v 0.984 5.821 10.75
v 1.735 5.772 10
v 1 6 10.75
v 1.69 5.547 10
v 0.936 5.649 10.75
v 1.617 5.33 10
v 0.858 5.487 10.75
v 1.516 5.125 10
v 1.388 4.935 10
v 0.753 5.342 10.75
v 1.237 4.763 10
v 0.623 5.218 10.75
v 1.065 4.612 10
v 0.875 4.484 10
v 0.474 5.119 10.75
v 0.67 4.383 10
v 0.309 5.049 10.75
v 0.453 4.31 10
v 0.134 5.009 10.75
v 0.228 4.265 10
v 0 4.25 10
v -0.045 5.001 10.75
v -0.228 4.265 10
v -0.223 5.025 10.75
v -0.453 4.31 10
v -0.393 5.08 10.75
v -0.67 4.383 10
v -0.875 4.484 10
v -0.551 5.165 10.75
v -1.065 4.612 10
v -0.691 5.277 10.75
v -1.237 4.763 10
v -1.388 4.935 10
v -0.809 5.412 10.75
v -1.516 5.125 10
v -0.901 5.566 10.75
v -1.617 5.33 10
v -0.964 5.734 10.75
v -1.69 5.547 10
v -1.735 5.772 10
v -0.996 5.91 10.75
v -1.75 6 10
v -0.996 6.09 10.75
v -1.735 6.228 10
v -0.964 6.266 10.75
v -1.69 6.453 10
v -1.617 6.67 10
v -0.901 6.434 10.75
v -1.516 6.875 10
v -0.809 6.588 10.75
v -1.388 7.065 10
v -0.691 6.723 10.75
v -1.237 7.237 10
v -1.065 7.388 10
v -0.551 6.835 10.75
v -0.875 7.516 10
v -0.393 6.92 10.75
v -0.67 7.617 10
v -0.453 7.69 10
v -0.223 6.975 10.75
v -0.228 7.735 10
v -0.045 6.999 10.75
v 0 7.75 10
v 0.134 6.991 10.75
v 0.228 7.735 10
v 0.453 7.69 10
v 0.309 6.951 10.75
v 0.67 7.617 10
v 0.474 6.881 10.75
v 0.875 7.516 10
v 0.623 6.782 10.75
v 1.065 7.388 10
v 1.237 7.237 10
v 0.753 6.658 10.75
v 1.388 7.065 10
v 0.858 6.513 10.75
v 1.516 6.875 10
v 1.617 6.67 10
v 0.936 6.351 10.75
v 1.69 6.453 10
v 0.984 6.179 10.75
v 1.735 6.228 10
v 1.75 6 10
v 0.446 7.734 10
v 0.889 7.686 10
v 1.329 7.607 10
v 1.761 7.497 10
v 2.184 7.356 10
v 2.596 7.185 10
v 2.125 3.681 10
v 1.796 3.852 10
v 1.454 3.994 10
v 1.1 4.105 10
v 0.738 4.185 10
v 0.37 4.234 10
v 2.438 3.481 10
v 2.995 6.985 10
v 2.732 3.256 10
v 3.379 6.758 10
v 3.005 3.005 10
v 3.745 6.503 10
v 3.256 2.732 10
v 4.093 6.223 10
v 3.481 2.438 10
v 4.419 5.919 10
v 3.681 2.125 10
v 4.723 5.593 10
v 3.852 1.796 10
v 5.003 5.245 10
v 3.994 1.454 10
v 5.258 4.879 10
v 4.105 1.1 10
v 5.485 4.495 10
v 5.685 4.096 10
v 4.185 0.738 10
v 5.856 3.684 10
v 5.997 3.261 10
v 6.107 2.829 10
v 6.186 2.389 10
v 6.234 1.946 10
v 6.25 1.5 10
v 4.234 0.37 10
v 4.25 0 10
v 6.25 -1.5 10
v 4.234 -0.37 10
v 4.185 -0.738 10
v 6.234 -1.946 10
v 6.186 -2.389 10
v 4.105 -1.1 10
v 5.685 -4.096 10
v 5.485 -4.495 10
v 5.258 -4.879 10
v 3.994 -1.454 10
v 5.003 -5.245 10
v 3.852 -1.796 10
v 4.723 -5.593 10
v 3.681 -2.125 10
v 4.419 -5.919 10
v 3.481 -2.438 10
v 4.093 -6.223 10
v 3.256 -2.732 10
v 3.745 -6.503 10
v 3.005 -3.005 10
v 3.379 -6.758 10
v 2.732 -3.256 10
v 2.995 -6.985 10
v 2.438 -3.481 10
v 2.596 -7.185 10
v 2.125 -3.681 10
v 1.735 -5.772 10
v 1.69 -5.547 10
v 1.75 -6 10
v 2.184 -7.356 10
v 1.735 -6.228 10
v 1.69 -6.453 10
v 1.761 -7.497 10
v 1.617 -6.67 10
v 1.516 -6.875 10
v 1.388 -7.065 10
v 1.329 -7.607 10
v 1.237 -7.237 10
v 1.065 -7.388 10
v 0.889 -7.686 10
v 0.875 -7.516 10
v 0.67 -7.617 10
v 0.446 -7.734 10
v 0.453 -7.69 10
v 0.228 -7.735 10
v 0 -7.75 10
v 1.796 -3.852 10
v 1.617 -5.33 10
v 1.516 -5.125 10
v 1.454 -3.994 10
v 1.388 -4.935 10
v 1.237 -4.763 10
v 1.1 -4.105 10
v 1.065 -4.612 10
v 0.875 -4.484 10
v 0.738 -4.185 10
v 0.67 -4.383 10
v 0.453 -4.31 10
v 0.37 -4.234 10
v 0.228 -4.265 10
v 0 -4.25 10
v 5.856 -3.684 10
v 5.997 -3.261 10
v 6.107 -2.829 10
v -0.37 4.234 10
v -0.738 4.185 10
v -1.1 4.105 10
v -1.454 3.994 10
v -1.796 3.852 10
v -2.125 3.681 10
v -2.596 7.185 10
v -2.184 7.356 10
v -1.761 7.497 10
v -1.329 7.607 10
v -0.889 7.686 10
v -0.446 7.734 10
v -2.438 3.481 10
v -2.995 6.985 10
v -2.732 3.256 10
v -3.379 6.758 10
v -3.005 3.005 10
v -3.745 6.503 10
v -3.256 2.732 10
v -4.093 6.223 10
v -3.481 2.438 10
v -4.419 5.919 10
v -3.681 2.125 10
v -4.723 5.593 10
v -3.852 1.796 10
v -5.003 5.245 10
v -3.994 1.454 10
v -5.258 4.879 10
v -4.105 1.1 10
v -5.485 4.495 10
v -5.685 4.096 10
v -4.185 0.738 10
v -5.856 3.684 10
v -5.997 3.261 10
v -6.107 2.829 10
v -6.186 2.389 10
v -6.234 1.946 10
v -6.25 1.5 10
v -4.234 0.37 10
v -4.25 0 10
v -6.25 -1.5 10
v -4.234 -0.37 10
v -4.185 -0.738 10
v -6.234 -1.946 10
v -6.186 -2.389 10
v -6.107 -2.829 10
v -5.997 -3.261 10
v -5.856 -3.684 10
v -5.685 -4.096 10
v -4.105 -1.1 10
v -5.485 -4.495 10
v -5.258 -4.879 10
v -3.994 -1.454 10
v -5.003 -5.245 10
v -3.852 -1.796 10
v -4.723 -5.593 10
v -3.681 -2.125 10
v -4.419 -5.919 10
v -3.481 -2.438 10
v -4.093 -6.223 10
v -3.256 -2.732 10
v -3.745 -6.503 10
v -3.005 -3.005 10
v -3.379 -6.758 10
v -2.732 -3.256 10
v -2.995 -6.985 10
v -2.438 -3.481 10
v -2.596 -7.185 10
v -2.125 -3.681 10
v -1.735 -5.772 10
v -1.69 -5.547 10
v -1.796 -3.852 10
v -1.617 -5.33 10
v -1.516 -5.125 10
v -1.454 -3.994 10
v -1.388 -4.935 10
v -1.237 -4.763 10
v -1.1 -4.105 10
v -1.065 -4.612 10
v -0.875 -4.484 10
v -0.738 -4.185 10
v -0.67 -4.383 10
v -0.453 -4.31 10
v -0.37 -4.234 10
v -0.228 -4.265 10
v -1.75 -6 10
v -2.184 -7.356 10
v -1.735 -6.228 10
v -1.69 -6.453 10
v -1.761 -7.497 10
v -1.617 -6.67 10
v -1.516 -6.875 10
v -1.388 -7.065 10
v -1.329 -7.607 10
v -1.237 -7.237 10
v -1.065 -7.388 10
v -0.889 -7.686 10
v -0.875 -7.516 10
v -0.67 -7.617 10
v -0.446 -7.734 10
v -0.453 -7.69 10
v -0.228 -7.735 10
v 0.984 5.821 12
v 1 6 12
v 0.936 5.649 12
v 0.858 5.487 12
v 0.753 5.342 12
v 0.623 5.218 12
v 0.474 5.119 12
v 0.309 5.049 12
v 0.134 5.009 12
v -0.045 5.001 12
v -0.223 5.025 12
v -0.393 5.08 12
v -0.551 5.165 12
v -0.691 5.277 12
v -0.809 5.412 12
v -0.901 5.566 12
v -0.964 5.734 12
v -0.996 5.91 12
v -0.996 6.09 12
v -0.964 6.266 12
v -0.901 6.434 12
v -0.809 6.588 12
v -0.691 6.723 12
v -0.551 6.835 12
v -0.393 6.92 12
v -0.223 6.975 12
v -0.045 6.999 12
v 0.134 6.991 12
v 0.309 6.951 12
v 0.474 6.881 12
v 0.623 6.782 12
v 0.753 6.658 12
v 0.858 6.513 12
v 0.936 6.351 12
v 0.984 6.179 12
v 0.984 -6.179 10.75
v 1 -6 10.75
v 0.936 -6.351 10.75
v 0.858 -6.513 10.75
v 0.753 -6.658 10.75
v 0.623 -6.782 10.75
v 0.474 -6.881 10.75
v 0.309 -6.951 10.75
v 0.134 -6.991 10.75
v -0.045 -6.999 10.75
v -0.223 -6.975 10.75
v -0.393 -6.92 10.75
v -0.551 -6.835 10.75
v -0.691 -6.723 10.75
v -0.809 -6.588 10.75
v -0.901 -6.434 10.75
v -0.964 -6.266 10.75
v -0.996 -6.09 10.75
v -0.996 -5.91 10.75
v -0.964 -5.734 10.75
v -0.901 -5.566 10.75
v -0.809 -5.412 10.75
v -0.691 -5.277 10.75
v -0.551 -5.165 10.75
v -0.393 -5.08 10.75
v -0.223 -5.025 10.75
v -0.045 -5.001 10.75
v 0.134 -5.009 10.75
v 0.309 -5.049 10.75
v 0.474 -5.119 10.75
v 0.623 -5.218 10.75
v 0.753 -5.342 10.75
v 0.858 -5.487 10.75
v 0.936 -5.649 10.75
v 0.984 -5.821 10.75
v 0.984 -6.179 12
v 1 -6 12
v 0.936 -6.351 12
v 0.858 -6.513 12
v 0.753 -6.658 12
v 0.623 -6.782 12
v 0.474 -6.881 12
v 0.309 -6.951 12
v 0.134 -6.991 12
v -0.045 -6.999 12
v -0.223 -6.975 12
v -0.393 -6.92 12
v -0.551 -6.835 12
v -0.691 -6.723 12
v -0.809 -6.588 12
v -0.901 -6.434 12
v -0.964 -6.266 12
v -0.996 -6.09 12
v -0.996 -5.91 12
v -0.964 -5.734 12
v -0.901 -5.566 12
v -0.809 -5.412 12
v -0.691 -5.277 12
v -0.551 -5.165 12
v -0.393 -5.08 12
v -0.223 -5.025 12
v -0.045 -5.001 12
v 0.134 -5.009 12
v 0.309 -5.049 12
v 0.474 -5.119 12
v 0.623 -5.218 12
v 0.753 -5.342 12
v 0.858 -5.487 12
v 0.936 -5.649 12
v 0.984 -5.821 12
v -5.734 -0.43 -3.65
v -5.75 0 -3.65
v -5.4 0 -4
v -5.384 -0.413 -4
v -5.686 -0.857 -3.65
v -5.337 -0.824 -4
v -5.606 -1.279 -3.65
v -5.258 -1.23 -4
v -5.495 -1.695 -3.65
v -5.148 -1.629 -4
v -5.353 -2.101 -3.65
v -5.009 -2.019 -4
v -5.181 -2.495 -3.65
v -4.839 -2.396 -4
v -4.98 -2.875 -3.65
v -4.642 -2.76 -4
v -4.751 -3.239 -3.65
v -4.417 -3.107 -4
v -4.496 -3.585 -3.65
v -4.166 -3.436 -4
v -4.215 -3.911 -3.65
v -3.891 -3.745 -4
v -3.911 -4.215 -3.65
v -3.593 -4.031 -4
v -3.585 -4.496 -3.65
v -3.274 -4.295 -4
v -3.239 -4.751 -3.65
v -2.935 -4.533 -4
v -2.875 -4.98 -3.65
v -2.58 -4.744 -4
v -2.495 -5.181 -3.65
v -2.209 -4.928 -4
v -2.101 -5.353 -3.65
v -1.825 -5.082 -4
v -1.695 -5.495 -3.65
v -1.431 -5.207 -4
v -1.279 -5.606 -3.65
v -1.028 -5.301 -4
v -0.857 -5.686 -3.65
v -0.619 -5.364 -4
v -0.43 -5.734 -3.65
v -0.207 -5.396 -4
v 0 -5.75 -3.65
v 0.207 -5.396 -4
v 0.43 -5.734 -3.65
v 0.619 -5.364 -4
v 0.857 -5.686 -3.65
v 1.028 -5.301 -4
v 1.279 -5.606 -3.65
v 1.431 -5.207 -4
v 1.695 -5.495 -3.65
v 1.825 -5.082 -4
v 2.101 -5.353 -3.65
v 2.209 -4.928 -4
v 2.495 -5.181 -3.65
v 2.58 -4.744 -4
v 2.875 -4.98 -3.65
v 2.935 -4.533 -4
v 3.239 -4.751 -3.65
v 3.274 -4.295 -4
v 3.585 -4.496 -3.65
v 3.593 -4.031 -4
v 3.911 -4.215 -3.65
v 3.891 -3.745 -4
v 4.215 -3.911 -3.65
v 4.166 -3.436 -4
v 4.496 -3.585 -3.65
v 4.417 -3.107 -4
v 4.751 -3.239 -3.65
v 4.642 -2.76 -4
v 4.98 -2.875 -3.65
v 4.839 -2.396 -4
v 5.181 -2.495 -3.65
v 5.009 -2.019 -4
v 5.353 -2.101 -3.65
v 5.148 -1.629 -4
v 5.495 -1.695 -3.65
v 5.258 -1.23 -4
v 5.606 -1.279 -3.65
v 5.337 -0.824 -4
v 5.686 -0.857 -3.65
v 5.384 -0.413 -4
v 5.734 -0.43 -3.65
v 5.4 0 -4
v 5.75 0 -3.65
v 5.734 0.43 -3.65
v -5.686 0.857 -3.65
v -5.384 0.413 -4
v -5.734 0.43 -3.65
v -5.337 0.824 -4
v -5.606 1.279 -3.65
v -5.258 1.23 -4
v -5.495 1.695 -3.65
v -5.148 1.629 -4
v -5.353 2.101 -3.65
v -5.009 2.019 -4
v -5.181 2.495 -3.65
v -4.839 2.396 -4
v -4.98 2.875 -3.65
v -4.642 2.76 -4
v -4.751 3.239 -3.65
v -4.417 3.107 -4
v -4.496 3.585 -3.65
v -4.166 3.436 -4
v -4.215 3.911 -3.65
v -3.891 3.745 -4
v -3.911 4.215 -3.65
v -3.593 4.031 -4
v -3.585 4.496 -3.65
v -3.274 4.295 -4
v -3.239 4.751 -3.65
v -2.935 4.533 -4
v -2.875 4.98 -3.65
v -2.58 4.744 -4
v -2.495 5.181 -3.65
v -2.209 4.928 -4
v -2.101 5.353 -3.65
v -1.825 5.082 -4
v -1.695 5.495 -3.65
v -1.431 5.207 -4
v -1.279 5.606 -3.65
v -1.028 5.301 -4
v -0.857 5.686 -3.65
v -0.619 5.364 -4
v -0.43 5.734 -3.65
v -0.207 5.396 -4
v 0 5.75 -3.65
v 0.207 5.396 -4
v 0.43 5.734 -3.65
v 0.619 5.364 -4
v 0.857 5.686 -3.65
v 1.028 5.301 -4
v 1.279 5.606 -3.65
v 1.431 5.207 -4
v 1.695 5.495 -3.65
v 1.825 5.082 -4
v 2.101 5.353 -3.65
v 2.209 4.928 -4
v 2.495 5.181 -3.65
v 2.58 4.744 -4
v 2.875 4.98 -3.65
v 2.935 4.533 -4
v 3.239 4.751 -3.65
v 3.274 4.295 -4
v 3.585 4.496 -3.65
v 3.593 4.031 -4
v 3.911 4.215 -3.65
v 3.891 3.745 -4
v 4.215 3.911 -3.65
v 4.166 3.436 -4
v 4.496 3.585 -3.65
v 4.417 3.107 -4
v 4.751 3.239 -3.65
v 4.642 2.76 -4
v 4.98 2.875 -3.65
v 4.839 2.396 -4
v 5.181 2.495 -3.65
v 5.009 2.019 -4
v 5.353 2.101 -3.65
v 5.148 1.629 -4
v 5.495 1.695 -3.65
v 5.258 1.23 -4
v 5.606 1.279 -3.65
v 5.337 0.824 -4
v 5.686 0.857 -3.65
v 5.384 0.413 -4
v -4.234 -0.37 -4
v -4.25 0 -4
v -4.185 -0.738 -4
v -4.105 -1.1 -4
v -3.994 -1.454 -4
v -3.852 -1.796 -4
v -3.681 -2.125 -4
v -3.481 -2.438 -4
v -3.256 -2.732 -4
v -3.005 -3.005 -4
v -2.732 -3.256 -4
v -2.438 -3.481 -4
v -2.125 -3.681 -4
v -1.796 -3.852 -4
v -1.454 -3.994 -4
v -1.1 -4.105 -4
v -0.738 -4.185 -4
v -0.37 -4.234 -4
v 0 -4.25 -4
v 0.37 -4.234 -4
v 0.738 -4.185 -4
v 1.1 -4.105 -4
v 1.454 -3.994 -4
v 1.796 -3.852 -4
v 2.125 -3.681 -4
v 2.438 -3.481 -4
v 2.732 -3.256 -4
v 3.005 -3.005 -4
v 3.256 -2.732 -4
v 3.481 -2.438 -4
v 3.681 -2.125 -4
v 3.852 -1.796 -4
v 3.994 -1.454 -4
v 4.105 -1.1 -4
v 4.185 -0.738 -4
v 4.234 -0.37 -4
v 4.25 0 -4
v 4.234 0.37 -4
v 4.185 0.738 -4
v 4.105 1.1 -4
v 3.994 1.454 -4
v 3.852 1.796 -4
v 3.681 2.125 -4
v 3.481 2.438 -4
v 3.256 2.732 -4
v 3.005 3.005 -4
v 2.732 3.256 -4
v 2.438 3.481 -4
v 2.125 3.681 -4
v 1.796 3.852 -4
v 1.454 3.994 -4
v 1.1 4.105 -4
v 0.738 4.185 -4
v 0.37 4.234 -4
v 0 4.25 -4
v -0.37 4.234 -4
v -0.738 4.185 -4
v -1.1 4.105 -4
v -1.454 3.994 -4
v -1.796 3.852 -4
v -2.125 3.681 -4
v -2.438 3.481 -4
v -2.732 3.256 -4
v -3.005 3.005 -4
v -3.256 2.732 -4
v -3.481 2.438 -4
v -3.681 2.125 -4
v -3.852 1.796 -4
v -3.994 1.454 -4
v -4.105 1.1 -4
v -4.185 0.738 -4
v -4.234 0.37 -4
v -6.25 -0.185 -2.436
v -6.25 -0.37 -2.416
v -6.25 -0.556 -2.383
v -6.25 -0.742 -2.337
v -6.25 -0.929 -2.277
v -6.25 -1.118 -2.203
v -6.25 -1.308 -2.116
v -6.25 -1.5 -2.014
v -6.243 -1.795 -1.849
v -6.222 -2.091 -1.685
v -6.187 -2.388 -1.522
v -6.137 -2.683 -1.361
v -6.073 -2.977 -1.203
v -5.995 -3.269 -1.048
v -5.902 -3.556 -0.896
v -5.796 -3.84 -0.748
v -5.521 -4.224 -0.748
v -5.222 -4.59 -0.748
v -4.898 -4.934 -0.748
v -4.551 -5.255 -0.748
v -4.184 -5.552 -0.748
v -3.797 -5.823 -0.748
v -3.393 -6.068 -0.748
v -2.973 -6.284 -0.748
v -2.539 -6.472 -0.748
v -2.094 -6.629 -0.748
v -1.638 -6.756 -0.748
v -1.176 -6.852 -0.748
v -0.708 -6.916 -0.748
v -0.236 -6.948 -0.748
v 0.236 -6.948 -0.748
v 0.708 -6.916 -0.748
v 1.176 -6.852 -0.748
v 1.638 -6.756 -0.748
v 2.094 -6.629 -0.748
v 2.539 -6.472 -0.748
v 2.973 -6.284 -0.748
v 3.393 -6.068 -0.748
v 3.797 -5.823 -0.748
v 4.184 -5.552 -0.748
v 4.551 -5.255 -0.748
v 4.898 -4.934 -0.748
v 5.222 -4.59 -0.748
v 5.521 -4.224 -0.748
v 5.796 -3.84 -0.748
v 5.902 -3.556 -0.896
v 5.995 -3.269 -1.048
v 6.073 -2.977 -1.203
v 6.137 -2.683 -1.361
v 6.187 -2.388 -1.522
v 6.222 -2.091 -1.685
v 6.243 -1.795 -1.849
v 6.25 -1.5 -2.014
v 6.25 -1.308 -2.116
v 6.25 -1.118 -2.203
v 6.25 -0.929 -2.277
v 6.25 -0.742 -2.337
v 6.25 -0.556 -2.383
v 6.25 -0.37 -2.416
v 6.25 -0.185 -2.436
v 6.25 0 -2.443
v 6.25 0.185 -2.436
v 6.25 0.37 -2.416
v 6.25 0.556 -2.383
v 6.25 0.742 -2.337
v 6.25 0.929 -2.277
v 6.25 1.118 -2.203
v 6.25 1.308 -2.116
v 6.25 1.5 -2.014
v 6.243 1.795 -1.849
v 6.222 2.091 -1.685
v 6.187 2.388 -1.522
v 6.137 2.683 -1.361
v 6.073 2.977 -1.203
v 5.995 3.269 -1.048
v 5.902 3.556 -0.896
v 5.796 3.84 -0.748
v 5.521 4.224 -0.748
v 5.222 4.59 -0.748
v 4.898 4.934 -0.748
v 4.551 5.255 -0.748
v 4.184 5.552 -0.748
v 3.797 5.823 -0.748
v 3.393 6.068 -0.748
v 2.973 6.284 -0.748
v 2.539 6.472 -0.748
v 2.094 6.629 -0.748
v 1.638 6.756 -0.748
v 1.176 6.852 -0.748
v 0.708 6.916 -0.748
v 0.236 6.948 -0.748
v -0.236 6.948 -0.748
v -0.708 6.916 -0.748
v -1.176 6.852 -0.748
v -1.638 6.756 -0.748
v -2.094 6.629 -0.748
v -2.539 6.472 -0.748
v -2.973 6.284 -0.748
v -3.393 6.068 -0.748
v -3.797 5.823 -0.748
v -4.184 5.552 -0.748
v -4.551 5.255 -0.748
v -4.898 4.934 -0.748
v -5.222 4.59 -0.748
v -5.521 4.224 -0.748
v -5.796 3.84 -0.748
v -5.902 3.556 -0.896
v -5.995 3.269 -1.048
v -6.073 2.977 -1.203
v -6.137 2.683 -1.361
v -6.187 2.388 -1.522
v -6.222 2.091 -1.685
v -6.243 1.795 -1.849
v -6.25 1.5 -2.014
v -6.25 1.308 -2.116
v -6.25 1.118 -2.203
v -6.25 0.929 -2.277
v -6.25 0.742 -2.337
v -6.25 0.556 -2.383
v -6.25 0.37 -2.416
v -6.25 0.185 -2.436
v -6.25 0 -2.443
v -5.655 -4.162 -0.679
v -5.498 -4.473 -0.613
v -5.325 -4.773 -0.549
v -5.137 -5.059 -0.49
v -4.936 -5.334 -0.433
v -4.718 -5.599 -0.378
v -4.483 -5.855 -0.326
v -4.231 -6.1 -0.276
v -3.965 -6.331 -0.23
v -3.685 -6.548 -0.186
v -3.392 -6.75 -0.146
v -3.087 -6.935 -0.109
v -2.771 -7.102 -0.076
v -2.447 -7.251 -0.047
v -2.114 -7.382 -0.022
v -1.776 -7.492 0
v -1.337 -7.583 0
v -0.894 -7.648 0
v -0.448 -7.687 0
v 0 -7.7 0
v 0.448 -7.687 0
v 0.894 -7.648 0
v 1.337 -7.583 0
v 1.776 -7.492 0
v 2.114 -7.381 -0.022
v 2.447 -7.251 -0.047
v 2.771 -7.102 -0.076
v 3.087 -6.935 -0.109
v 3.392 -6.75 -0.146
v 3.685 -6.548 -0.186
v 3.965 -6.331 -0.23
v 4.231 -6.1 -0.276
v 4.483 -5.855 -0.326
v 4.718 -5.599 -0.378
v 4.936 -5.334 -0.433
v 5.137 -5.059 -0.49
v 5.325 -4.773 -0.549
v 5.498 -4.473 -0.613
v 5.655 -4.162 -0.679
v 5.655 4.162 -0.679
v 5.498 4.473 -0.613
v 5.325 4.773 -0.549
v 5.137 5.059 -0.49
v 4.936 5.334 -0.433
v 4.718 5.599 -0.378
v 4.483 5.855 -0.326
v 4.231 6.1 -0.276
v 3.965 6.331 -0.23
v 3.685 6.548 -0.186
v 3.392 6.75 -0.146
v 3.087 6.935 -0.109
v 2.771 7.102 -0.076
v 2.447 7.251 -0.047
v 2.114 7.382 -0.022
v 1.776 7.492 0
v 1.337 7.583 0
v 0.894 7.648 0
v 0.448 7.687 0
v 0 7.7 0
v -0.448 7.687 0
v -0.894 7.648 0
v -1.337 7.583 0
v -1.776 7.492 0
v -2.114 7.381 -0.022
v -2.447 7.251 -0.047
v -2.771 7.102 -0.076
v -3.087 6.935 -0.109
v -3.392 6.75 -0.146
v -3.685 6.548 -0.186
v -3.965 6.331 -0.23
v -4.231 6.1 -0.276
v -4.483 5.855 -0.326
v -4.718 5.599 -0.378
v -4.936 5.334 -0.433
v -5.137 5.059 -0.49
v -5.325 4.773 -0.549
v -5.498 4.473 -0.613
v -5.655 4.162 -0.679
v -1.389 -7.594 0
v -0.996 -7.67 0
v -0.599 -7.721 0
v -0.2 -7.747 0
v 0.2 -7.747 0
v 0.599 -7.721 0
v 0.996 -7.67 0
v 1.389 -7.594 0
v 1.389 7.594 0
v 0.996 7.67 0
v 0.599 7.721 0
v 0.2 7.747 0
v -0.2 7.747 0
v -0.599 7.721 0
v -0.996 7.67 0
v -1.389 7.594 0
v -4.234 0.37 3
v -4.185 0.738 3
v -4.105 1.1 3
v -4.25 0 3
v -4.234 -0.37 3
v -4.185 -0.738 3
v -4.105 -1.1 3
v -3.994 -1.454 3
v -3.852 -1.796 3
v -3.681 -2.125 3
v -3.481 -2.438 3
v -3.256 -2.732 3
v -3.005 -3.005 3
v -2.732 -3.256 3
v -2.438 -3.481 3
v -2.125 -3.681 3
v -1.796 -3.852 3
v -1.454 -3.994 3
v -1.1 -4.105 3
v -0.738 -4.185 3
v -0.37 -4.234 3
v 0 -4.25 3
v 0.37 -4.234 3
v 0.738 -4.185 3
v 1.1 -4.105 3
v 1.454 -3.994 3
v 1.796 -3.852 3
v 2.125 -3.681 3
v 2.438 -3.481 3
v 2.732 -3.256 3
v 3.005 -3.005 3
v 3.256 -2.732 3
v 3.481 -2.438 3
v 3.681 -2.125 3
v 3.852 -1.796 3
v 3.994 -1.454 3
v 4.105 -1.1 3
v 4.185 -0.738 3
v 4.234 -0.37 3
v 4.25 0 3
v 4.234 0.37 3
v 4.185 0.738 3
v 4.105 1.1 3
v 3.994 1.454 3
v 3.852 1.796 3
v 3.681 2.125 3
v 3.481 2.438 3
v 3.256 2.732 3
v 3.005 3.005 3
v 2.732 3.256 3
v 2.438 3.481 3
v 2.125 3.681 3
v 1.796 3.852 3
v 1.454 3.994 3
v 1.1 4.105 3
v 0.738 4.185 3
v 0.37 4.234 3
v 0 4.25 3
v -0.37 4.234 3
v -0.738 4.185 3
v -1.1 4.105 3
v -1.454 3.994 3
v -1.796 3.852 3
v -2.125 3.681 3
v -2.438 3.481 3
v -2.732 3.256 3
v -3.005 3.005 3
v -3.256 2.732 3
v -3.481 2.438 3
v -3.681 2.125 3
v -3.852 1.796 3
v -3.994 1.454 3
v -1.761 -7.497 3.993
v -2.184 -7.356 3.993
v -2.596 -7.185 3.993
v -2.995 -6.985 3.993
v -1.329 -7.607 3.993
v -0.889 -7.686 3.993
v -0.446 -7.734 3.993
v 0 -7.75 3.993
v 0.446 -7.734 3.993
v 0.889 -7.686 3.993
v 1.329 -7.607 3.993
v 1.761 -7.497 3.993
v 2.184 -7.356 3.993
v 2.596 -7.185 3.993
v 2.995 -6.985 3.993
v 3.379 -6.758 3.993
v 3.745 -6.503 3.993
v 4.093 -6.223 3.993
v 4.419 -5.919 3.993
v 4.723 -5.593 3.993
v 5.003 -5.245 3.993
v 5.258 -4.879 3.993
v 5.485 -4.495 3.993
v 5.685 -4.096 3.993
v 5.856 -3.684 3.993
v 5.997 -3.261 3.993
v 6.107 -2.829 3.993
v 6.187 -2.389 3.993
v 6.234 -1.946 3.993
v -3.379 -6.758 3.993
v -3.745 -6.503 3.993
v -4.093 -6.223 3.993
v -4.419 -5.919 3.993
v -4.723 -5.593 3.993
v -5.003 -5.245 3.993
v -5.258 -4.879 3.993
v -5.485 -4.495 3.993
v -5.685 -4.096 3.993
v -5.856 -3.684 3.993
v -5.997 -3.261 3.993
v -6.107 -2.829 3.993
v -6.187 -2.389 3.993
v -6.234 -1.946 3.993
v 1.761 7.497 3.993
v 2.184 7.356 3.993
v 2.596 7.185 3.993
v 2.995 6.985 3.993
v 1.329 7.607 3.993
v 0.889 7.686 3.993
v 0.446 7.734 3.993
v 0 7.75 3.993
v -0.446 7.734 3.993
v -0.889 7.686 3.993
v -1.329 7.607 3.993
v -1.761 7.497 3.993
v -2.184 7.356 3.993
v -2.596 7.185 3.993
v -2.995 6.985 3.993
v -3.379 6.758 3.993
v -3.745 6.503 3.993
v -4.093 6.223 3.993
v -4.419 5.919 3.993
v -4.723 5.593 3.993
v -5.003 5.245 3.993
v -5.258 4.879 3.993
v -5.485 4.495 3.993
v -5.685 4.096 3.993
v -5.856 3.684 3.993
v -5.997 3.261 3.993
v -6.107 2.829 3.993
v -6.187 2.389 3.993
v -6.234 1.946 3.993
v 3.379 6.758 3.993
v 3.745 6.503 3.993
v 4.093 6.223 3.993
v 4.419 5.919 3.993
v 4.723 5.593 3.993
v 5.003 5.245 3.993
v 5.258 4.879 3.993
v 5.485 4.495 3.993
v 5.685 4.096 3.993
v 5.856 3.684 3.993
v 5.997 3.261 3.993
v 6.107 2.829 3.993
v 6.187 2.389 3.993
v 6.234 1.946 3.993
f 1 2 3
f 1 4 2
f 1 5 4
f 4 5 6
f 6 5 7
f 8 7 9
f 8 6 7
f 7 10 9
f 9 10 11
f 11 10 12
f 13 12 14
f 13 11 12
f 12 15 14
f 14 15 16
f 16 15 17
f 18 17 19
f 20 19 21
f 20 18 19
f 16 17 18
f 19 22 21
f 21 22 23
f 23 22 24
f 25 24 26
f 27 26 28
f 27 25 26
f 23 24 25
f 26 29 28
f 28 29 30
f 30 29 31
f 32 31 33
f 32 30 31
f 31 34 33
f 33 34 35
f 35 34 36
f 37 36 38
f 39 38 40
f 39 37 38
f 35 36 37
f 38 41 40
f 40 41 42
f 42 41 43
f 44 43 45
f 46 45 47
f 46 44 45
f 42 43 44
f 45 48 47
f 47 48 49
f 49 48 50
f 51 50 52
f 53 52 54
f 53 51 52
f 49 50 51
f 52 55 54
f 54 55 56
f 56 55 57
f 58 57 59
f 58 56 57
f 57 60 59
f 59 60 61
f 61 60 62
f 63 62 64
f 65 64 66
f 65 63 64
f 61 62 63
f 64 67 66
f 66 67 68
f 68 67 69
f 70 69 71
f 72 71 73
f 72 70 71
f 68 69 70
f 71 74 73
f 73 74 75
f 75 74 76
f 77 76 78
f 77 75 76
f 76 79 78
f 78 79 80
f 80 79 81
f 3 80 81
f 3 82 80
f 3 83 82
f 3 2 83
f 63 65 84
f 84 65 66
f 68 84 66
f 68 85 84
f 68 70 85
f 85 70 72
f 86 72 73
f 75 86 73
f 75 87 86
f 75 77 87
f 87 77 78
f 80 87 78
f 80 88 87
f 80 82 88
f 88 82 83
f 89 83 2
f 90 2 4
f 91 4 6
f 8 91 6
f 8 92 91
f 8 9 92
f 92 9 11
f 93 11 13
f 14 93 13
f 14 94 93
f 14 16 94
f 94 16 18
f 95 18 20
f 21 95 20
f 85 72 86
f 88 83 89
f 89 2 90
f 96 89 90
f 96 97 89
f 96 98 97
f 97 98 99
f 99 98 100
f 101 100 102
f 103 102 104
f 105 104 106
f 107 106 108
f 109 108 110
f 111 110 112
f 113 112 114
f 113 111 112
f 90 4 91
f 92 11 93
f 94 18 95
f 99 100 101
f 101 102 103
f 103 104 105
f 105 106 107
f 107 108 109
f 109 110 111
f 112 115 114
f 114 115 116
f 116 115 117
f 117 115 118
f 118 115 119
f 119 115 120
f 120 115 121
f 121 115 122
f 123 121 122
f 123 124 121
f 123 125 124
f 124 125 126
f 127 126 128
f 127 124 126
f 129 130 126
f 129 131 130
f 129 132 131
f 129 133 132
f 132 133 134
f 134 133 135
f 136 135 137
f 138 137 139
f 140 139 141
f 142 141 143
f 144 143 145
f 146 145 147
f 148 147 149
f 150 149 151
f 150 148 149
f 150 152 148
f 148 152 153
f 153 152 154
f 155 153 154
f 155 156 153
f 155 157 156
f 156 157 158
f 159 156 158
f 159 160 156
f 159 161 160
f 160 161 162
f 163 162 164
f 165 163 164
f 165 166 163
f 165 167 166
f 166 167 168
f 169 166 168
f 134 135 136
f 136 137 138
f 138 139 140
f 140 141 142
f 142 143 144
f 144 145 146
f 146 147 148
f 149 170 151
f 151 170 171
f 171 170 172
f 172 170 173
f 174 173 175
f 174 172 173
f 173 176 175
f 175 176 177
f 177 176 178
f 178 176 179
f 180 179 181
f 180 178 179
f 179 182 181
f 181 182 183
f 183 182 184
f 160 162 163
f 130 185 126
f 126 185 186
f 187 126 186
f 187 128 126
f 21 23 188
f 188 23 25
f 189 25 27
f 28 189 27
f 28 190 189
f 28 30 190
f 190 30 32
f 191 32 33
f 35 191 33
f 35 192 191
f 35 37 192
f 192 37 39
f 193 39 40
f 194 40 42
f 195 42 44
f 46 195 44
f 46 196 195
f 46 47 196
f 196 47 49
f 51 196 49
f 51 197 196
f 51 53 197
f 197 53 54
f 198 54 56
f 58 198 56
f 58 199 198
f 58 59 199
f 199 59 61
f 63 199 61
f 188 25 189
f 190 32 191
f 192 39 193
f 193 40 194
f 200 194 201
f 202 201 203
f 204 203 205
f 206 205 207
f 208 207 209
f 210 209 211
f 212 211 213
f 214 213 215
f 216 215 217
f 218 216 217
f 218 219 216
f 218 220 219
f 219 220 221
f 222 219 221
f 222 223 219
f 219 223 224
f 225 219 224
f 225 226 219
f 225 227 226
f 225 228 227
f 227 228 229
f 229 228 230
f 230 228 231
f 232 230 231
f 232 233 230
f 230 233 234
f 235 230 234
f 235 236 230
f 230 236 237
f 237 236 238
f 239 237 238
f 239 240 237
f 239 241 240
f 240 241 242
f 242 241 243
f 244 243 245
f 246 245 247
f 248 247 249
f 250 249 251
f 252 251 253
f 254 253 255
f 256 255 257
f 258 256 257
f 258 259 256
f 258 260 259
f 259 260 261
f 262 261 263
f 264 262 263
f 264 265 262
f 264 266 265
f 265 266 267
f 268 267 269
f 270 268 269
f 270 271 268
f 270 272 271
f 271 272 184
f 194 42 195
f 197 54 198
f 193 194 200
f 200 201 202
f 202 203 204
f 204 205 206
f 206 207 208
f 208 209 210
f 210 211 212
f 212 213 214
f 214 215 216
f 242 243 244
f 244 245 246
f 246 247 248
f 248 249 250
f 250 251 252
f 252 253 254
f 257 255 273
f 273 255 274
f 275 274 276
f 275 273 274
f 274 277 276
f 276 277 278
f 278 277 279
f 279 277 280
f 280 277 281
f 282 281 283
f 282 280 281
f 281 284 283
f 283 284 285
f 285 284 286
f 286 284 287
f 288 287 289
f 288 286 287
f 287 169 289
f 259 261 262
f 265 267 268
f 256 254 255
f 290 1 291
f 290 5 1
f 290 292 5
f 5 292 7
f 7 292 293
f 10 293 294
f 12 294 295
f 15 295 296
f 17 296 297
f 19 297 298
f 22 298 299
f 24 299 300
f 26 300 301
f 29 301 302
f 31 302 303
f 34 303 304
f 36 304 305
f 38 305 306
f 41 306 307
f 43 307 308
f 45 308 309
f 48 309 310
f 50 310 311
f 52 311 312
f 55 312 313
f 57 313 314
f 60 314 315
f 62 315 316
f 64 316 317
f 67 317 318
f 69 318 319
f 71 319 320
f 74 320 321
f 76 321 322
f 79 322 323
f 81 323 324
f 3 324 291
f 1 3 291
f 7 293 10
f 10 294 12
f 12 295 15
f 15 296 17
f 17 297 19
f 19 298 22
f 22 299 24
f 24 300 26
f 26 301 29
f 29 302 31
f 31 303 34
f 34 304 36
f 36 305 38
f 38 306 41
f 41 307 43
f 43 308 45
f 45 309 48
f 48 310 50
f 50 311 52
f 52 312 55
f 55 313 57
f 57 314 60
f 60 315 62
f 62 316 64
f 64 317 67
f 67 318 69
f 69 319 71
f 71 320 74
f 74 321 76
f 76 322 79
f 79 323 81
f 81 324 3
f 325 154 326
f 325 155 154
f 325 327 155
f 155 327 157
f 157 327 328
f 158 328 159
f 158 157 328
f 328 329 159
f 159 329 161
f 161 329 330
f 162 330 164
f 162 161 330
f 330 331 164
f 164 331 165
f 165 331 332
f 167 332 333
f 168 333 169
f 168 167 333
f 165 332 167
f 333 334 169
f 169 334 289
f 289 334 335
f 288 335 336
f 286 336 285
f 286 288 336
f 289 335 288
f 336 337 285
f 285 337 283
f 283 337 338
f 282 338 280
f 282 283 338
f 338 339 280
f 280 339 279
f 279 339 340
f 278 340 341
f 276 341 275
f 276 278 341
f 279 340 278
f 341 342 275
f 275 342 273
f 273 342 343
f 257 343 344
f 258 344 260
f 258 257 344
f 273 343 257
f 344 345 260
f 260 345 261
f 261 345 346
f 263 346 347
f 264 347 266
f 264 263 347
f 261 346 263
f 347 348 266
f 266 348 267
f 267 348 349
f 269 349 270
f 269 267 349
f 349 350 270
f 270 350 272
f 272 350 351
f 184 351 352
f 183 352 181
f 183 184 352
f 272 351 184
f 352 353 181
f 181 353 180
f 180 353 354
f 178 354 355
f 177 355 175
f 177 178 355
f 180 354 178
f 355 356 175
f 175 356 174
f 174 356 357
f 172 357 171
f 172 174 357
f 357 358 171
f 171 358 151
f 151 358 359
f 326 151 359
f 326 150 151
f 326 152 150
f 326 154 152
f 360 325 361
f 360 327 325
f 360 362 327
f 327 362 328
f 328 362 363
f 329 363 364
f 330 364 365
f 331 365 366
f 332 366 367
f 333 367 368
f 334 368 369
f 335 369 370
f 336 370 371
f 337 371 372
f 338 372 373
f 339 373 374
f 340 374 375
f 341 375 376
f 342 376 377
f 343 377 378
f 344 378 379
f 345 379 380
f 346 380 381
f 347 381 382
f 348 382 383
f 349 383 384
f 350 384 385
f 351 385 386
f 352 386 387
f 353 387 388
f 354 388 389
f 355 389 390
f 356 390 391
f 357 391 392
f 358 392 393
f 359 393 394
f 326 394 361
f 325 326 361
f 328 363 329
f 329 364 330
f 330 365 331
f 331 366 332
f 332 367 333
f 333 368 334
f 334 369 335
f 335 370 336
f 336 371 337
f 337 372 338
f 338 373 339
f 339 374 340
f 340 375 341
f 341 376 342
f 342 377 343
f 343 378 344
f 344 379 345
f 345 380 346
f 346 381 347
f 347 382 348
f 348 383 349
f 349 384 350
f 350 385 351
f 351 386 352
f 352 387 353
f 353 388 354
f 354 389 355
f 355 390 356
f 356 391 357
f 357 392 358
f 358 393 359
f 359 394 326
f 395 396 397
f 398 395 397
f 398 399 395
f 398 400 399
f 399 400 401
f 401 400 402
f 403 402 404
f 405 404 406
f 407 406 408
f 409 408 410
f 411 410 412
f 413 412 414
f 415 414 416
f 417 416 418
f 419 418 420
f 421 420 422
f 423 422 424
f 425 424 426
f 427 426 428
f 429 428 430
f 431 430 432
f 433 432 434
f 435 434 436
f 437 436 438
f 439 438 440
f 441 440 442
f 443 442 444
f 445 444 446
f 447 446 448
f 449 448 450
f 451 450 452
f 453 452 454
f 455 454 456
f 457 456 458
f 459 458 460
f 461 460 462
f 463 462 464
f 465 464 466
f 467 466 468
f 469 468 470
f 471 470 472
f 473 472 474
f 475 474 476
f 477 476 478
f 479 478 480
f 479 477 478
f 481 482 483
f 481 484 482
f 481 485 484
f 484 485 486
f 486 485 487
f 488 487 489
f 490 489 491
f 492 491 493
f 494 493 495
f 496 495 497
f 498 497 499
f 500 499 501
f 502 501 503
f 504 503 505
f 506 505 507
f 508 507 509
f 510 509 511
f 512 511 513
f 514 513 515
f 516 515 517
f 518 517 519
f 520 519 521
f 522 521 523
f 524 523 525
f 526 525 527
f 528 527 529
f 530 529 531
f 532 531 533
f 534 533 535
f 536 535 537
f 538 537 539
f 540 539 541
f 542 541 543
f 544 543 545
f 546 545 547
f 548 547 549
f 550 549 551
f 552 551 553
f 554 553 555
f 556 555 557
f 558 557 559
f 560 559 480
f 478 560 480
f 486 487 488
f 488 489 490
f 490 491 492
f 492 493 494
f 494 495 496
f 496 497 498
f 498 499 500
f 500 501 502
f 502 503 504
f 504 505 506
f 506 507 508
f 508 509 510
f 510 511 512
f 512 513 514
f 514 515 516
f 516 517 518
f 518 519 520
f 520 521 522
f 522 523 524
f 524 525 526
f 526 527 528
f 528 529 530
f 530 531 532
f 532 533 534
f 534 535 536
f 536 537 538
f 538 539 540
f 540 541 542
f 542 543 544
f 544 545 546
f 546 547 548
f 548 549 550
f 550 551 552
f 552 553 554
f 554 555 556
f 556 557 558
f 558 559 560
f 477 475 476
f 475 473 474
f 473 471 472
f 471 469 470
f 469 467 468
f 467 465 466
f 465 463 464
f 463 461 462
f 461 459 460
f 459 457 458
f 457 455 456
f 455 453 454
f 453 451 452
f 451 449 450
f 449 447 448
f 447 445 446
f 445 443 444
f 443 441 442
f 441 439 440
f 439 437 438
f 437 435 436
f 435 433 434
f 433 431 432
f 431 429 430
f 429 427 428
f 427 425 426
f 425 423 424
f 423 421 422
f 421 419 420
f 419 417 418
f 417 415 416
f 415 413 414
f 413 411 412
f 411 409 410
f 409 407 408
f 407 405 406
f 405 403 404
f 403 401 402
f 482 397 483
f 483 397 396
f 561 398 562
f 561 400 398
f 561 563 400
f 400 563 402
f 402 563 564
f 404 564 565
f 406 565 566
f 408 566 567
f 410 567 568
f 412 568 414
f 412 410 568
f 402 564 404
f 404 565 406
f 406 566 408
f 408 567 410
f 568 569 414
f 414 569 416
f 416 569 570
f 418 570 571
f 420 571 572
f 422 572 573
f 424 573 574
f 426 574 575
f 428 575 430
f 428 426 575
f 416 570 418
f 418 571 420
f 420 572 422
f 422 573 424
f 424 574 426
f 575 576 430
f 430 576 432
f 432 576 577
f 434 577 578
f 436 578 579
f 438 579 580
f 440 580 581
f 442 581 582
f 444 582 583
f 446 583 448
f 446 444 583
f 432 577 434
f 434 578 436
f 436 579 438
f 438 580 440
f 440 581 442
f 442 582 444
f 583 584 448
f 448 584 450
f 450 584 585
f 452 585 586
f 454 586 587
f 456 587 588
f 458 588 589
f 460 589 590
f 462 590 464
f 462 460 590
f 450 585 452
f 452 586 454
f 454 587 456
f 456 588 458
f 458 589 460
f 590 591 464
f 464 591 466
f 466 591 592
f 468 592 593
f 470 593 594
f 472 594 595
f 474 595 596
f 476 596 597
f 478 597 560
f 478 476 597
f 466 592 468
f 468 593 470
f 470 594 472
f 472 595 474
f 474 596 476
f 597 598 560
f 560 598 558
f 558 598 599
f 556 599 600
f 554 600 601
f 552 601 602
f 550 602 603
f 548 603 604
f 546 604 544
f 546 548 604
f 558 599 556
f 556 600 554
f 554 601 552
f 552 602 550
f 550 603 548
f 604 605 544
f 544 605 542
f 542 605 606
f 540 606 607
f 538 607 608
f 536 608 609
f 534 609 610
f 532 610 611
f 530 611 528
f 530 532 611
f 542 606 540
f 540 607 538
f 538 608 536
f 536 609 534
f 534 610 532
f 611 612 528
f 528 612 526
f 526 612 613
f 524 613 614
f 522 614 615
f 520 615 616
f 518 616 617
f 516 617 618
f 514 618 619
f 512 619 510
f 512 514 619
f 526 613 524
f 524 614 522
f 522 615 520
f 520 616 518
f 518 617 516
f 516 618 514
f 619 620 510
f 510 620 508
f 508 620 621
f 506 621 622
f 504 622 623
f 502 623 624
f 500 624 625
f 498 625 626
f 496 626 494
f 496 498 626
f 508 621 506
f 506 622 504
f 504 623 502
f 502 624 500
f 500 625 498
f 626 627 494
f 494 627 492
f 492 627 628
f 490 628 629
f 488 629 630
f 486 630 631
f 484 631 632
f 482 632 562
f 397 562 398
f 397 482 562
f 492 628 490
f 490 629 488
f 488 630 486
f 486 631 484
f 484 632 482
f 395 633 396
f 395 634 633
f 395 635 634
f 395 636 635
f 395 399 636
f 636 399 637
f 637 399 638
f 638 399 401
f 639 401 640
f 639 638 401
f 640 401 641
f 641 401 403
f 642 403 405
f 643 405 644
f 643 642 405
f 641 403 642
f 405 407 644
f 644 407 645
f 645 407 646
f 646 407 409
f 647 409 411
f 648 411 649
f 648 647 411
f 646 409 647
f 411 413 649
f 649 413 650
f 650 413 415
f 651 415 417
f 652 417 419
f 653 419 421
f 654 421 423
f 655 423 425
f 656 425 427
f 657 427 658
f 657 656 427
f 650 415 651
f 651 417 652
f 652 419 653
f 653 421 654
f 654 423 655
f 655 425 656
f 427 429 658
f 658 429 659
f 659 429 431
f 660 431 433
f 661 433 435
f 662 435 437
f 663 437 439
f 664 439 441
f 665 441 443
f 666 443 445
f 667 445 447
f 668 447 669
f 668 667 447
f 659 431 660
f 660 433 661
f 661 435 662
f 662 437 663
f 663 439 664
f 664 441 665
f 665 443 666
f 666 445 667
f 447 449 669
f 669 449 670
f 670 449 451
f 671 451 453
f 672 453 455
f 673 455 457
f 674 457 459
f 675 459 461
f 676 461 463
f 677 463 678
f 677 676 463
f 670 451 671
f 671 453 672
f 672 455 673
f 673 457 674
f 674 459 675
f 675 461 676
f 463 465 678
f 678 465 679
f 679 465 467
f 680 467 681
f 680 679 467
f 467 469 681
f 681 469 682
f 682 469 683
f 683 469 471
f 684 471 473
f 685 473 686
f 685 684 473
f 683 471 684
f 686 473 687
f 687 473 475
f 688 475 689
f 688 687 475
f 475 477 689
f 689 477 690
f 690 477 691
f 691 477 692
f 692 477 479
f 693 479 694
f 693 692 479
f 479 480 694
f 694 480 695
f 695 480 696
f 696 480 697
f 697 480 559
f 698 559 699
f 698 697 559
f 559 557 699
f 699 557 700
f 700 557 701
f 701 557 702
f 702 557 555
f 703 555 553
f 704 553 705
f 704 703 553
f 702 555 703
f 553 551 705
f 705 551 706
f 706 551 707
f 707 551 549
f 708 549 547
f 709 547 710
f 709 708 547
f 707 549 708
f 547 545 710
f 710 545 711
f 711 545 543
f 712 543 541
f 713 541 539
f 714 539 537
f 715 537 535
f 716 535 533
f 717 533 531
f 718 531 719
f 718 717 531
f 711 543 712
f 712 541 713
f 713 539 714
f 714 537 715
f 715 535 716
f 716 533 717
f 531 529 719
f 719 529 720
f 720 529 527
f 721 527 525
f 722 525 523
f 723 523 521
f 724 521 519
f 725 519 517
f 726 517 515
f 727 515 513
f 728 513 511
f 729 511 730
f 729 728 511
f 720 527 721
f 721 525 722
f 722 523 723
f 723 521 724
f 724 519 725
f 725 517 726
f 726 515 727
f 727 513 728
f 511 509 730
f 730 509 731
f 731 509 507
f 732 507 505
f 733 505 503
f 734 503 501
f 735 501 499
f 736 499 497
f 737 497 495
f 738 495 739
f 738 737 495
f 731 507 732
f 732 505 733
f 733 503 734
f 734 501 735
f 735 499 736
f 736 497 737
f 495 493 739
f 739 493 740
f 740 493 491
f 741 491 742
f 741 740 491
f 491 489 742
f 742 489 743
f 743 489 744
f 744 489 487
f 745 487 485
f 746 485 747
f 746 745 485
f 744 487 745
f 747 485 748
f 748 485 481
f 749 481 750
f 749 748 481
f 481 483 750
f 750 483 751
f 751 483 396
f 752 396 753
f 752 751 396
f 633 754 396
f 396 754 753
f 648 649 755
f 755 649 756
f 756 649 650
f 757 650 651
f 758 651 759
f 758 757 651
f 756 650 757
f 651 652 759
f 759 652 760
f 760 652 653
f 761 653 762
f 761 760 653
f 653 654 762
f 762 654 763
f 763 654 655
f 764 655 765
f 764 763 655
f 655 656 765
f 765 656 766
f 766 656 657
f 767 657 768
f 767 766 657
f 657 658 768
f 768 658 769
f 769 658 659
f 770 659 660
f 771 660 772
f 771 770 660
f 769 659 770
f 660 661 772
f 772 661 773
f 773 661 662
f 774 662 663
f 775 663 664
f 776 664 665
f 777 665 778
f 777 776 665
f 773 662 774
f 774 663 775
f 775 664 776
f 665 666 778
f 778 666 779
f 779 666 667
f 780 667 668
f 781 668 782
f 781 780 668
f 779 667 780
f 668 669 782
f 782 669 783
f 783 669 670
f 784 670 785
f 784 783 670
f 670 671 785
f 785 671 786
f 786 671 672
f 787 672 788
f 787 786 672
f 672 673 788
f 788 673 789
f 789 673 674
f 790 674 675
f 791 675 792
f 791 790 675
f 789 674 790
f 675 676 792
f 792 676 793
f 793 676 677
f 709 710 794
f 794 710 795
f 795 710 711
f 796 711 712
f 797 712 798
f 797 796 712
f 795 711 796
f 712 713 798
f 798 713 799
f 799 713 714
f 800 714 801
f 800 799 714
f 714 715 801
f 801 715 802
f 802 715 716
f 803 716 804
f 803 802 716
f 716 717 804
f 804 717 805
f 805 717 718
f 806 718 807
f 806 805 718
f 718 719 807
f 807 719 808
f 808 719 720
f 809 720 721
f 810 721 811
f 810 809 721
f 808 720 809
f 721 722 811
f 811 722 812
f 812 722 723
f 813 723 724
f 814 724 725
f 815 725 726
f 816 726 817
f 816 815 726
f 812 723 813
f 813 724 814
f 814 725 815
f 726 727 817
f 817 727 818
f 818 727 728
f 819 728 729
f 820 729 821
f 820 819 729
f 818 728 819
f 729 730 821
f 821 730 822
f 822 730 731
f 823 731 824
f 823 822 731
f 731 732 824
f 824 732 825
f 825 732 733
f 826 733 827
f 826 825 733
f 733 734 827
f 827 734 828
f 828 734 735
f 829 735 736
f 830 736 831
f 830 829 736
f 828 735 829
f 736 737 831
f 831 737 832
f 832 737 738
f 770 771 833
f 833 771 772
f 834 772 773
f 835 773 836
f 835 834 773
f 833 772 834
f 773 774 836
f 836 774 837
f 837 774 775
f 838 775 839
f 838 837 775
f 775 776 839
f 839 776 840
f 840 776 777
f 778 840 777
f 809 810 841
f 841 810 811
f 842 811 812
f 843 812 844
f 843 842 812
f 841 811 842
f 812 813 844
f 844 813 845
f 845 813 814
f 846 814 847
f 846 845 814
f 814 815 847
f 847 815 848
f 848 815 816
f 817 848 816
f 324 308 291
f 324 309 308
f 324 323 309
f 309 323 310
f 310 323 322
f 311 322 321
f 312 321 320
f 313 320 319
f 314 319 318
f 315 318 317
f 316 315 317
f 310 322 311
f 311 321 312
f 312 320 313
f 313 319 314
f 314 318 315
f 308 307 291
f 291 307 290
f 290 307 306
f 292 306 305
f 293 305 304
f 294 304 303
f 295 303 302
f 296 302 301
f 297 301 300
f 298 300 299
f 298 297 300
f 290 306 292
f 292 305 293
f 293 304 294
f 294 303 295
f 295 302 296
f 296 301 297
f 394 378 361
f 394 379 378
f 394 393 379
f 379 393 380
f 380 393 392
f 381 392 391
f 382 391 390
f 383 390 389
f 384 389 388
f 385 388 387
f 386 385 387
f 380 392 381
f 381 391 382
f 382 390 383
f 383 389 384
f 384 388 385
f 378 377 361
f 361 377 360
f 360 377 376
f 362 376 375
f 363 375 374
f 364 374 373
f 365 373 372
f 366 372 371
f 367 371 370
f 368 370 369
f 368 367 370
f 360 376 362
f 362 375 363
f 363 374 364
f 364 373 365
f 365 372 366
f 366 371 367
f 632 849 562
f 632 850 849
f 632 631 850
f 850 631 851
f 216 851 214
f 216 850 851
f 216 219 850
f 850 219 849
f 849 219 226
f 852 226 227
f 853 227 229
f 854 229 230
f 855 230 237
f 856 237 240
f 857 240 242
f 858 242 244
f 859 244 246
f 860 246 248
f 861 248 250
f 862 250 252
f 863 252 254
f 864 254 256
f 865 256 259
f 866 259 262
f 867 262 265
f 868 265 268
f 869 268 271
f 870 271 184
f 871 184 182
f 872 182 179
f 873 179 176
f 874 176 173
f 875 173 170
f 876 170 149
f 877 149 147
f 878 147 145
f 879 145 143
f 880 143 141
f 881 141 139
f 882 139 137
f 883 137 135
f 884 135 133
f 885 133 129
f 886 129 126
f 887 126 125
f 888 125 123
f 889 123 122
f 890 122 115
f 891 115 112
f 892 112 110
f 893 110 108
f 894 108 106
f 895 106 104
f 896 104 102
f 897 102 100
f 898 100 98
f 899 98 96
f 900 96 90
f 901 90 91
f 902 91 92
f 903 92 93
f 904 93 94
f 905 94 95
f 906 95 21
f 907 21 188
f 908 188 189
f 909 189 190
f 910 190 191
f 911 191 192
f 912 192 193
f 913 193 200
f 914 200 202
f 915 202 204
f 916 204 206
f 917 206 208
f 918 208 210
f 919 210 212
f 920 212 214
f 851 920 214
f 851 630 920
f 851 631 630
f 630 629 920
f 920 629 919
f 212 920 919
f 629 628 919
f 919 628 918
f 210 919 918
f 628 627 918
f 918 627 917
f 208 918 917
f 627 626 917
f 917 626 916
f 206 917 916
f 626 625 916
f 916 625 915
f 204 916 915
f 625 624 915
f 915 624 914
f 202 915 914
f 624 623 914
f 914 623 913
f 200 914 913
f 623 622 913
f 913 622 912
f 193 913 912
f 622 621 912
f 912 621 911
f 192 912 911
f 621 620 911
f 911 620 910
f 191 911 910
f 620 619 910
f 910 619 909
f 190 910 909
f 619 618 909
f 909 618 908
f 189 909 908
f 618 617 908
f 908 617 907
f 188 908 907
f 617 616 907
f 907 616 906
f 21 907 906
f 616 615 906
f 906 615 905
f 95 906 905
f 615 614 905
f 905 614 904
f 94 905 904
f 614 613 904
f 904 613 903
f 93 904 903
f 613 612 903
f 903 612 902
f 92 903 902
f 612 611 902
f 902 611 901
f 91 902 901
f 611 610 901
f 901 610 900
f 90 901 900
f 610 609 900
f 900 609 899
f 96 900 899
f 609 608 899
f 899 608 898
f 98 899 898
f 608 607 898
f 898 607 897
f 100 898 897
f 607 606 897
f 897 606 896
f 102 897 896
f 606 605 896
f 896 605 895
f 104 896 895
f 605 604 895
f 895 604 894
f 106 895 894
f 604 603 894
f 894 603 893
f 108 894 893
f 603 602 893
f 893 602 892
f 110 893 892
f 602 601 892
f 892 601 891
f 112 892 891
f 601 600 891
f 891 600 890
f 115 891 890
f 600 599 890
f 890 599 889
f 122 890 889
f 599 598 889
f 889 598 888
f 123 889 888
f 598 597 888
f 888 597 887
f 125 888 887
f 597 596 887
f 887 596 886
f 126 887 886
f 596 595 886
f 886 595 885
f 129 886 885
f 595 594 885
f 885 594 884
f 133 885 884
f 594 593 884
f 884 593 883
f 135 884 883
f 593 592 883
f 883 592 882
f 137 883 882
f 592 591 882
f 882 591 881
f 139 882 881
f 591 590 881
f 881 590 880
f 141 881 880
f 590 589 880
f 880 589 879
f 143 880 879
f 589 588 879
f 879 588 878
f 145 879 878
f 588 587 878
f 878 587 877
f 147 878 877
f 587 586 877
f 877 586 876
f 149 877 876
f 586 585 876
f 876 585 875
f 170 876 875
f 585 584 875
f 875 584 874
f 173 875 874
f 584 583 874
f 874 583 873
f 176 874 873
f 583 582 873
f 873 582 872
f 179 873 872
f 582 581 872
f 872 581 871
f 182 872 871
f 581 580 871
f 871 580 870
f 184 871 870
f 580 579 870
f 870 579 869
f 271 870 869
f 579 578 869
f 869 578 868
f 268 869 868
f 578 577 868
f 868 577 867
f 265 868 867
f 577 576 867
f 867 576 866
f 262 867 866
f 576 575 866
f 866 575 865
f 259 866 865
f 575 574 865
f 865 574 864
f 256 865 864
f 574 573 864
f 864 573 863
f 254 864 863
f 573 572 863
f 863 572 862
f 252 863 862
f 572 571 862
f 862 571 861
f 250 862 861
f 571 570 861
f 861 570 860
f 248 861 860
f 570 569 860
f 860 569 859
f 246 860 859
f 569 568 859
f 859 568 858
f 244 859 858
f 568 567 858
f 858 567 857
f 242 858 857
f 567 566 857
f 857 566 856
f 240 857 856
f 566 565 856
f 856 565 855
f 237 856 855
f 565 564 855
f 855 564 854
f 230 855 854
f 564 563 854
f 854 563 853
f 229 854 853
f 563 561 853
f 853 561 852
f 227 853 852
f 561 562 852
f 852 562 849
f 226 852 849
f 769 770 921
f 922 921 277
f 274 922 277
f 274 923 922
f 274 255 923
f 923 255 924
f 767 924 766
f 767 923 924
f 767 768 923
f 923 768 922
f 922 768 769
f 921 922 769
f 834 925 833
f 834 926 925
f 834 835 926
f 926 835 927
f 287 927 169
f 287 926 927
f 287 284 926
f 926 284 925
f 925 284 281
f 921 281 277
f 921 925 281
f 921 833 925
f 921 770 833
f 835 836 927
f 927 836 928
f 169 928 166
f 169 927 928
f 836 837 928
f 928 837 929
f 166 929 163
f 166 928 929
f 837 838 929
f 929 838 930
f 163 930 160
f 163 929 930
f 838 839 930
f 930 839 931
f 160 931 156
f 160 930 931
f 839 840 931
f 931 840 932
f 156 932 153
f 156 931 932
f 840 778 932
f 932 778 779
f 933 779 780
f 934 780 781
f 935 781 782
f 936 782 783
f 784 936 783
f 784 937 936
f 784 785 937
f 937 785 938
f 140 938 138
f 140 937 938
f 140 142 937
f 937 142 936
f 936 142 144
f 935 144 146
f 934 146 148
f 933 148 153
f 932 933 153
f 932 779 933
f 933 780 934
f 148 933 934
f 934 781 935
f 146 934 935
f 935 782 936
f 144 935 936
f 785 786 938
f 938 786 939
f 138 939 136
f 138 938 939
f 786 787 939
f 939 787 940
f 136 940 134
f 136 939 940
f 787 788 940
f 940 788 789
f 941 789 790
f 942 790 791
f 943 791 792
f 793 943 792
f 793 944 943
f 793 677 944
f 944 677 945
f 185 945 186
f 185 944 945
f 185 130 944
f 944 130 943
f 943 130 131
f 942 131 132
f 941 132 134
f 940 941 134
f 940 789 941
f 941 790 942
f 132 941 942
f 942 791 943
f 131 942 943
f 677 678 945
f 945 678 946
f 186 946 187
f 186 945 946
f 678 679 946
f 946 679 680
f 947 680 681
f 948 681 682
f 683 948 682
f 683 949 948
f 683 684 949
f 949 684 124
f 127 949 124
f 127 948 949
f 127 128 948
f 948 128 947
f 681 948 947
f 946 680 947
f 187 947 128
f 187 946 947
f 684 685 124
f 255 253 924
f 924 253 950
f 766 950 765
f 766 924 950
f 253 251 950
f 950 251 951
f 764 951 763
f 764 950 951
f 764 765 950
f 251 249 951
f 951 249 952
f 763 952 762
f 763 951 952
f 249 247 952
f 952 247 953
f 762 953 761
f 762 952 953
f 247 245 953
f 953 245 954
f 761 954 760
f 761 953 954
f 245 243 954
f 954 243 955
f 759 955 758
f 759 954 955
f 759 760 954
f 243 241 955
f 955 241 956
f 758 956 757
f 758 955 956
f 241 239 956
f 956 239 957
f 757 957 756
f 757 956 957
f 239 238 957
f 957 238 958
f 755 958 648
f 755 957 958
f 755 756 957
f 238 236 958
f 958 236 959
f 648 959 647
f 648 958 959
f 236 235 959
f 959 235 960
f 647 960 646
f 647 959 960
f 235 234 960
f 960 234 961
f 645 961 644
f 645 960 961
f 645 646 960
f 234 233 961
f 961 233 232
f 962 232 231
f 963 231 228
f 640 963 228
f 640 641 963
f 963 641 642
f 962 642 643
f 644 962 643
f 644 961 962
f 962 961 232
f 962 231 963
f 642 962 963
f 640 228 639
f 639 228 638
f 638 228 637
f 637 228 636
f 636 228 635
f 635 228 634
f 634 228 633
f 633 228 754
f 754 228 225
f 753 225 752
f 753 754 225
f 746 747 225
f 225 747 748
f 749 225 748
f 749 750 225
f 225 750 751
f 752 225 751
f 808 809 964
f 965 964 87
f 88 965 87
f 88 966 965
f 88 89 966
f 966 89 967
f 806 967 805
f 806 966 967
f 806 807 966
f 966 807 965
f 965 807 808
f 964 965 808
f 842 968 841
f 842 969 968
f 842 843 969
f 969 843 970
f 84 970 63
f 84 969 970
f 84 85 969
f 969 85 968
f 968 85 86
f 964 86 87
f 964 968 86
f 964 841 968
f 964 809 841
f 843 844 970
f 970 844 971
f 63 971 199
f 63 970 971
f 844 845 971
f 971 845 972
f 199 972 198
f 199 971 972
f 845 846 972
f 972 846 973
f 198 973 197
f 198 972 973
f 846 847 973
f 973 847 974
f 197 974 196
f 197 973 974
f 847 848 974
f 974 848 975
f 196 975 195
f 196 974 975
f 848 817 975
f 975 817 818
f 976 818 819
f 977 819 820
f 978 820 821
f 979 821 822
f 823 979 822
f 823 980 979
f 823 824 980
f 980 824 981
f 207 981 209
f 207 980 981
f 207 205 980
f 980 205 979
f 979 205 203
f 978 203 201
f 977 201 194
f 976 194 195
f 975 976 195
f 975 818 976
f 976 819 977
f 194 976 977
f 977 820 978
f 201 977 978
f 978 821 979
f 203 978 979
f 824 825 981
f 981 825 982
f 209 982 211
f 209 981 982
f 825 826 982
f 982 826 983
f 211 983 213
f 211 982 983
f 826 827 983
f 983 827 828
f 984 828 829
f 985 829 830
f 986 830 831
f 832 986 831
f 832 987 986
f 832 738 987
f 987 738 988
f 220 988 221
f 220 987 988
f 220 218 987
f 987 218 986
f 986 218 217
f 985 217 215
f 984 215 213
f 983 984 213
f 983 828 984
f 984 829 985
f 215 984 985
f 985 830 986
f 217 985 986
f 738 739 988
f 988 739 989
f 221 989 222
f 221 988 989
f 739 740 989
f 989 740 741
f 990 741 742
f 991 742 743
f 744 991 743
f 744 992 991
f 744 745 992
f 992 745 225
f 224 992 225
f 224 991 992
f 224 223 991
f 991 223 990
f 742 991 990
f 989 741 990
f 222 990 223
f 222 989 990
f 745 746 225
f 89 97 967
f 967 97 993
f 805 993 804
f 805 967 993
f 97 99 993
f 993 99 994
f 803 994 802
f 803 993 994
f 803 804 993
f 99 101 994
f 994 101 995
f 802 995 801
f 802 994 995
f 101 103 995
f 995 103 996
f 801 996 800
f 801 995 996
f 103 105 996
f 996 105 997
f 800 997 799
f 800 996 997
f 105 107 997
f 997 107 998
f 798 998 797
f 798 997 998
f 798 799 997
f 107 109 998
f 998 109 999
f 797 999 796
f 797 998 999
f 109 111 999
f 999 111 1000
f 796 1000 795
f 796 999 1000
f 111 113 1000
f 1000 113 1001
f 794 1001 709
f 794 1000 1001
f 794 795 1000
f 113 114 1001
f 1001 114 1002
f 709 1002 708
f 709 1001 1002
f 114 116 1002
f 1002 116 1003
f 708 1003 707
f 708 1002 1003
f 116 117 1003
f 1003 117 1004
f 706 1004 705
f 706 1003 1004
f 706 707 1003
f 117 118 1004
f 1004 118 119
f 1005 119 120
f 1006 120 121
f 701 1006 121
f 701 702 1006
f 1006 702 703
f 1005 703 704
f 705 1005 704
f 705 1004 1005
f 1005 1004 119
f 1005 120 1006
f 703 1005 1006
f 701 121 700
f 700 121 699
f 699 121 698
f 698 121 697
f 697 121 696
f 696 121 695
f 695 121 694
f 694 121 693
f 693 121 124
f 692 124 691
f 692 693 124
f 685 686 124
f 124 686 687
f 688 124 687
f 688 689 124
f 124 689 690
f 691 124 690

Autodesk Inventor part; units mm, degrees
ref_plane "YZ Plane" through (0, 0, 0) normal (1, 0, 0) x (0, 1, 0)
ref_plane "XZ Plane" through (0, 0, 0) normal (0, 1, 0) x (-1, 0, 0)
ref_plane "XY Plane" through (0, 0, 0) normal (0, 0, 1) x (1, 0, 0)
sketch "Sketch1" plane through (0, 0, 0) normal (0, 0, 1) x (1, 0, 0)
  circle A0 centre (0, 0) radius 4.25
  line L0 (0, -1.5) -> (0, 1.5) construction
  line L1 (6.25, -1.5) -> (6.25, 1.5)
  line L2 (-6.25, 1.5) -> (-6.25, -1.5)
  arc A1 (-6.25, -1.5) -> (6.25, -1.5) centre (0, -1.5) ccw
  arc A2 (6.25, 1.5) -> (-6.25, 1.5) centre (0, 1.5) ccw
  dimension "d0" = 8.5
  dimension "d1" = 12.5
  dimension "d2" = 3
extrude "Extrusion1" add sketch "Sketch1" along normal blind 10
sketch "Sketch2" plane through (0, 0, 10) normal (0, 0, 1) x (1, 0, 0)
  circle A0 centre (0, 0) radius 4.25 projected
  line L0 (6.25, -1.5) -> (6.25, 1.5) projected
  line L1 (-6.25, 1.5) -> (-6.25, -1.5) projected
  circle A1 centre (0, 6) radius 1
  circle A2 centre (0, -6) radius 1
  line L2 (0, 6) -> (0, 0) construction
  line L3 (0, 0) -> (0, -6) construction
  dimension "d5" = 2
  dimension "d6" = 6
extrude "Extrusion2" add sketch "Sketch2" along normal blind 2 contours A1 | A2
sketch "Sketch3" plane through (0, 0, 0) normal (0, 0, -1) x (-1, 0, 0)
  circle A0 centre (0, 0) radius 4.25 projected
  circle A1 centre (0, 0) radius 4.25
  circle A2 centre (0, 0) radius 5.75
  dimension "d9" = 1.5
extrude "Extrusion3" add sketch "Sketch3" along normal blind 4
chamfer "Chamfer1" distance 1.95 angle 45 1 edges at (5.75, 0, 0)
chamfer "Chamfer2" distance 1.7 angle 45 1 edges at (5.75, 0, -1.95)
chamfer "Chamfer3" distance 0.35 angle 45 1 edges at (5.75, 0, -4)
chamfer "Chamfer4" distance 0.75 angle 45 2 edges at (-1, -6, 10) (-1, 6, 10)
properties part number "collar"
